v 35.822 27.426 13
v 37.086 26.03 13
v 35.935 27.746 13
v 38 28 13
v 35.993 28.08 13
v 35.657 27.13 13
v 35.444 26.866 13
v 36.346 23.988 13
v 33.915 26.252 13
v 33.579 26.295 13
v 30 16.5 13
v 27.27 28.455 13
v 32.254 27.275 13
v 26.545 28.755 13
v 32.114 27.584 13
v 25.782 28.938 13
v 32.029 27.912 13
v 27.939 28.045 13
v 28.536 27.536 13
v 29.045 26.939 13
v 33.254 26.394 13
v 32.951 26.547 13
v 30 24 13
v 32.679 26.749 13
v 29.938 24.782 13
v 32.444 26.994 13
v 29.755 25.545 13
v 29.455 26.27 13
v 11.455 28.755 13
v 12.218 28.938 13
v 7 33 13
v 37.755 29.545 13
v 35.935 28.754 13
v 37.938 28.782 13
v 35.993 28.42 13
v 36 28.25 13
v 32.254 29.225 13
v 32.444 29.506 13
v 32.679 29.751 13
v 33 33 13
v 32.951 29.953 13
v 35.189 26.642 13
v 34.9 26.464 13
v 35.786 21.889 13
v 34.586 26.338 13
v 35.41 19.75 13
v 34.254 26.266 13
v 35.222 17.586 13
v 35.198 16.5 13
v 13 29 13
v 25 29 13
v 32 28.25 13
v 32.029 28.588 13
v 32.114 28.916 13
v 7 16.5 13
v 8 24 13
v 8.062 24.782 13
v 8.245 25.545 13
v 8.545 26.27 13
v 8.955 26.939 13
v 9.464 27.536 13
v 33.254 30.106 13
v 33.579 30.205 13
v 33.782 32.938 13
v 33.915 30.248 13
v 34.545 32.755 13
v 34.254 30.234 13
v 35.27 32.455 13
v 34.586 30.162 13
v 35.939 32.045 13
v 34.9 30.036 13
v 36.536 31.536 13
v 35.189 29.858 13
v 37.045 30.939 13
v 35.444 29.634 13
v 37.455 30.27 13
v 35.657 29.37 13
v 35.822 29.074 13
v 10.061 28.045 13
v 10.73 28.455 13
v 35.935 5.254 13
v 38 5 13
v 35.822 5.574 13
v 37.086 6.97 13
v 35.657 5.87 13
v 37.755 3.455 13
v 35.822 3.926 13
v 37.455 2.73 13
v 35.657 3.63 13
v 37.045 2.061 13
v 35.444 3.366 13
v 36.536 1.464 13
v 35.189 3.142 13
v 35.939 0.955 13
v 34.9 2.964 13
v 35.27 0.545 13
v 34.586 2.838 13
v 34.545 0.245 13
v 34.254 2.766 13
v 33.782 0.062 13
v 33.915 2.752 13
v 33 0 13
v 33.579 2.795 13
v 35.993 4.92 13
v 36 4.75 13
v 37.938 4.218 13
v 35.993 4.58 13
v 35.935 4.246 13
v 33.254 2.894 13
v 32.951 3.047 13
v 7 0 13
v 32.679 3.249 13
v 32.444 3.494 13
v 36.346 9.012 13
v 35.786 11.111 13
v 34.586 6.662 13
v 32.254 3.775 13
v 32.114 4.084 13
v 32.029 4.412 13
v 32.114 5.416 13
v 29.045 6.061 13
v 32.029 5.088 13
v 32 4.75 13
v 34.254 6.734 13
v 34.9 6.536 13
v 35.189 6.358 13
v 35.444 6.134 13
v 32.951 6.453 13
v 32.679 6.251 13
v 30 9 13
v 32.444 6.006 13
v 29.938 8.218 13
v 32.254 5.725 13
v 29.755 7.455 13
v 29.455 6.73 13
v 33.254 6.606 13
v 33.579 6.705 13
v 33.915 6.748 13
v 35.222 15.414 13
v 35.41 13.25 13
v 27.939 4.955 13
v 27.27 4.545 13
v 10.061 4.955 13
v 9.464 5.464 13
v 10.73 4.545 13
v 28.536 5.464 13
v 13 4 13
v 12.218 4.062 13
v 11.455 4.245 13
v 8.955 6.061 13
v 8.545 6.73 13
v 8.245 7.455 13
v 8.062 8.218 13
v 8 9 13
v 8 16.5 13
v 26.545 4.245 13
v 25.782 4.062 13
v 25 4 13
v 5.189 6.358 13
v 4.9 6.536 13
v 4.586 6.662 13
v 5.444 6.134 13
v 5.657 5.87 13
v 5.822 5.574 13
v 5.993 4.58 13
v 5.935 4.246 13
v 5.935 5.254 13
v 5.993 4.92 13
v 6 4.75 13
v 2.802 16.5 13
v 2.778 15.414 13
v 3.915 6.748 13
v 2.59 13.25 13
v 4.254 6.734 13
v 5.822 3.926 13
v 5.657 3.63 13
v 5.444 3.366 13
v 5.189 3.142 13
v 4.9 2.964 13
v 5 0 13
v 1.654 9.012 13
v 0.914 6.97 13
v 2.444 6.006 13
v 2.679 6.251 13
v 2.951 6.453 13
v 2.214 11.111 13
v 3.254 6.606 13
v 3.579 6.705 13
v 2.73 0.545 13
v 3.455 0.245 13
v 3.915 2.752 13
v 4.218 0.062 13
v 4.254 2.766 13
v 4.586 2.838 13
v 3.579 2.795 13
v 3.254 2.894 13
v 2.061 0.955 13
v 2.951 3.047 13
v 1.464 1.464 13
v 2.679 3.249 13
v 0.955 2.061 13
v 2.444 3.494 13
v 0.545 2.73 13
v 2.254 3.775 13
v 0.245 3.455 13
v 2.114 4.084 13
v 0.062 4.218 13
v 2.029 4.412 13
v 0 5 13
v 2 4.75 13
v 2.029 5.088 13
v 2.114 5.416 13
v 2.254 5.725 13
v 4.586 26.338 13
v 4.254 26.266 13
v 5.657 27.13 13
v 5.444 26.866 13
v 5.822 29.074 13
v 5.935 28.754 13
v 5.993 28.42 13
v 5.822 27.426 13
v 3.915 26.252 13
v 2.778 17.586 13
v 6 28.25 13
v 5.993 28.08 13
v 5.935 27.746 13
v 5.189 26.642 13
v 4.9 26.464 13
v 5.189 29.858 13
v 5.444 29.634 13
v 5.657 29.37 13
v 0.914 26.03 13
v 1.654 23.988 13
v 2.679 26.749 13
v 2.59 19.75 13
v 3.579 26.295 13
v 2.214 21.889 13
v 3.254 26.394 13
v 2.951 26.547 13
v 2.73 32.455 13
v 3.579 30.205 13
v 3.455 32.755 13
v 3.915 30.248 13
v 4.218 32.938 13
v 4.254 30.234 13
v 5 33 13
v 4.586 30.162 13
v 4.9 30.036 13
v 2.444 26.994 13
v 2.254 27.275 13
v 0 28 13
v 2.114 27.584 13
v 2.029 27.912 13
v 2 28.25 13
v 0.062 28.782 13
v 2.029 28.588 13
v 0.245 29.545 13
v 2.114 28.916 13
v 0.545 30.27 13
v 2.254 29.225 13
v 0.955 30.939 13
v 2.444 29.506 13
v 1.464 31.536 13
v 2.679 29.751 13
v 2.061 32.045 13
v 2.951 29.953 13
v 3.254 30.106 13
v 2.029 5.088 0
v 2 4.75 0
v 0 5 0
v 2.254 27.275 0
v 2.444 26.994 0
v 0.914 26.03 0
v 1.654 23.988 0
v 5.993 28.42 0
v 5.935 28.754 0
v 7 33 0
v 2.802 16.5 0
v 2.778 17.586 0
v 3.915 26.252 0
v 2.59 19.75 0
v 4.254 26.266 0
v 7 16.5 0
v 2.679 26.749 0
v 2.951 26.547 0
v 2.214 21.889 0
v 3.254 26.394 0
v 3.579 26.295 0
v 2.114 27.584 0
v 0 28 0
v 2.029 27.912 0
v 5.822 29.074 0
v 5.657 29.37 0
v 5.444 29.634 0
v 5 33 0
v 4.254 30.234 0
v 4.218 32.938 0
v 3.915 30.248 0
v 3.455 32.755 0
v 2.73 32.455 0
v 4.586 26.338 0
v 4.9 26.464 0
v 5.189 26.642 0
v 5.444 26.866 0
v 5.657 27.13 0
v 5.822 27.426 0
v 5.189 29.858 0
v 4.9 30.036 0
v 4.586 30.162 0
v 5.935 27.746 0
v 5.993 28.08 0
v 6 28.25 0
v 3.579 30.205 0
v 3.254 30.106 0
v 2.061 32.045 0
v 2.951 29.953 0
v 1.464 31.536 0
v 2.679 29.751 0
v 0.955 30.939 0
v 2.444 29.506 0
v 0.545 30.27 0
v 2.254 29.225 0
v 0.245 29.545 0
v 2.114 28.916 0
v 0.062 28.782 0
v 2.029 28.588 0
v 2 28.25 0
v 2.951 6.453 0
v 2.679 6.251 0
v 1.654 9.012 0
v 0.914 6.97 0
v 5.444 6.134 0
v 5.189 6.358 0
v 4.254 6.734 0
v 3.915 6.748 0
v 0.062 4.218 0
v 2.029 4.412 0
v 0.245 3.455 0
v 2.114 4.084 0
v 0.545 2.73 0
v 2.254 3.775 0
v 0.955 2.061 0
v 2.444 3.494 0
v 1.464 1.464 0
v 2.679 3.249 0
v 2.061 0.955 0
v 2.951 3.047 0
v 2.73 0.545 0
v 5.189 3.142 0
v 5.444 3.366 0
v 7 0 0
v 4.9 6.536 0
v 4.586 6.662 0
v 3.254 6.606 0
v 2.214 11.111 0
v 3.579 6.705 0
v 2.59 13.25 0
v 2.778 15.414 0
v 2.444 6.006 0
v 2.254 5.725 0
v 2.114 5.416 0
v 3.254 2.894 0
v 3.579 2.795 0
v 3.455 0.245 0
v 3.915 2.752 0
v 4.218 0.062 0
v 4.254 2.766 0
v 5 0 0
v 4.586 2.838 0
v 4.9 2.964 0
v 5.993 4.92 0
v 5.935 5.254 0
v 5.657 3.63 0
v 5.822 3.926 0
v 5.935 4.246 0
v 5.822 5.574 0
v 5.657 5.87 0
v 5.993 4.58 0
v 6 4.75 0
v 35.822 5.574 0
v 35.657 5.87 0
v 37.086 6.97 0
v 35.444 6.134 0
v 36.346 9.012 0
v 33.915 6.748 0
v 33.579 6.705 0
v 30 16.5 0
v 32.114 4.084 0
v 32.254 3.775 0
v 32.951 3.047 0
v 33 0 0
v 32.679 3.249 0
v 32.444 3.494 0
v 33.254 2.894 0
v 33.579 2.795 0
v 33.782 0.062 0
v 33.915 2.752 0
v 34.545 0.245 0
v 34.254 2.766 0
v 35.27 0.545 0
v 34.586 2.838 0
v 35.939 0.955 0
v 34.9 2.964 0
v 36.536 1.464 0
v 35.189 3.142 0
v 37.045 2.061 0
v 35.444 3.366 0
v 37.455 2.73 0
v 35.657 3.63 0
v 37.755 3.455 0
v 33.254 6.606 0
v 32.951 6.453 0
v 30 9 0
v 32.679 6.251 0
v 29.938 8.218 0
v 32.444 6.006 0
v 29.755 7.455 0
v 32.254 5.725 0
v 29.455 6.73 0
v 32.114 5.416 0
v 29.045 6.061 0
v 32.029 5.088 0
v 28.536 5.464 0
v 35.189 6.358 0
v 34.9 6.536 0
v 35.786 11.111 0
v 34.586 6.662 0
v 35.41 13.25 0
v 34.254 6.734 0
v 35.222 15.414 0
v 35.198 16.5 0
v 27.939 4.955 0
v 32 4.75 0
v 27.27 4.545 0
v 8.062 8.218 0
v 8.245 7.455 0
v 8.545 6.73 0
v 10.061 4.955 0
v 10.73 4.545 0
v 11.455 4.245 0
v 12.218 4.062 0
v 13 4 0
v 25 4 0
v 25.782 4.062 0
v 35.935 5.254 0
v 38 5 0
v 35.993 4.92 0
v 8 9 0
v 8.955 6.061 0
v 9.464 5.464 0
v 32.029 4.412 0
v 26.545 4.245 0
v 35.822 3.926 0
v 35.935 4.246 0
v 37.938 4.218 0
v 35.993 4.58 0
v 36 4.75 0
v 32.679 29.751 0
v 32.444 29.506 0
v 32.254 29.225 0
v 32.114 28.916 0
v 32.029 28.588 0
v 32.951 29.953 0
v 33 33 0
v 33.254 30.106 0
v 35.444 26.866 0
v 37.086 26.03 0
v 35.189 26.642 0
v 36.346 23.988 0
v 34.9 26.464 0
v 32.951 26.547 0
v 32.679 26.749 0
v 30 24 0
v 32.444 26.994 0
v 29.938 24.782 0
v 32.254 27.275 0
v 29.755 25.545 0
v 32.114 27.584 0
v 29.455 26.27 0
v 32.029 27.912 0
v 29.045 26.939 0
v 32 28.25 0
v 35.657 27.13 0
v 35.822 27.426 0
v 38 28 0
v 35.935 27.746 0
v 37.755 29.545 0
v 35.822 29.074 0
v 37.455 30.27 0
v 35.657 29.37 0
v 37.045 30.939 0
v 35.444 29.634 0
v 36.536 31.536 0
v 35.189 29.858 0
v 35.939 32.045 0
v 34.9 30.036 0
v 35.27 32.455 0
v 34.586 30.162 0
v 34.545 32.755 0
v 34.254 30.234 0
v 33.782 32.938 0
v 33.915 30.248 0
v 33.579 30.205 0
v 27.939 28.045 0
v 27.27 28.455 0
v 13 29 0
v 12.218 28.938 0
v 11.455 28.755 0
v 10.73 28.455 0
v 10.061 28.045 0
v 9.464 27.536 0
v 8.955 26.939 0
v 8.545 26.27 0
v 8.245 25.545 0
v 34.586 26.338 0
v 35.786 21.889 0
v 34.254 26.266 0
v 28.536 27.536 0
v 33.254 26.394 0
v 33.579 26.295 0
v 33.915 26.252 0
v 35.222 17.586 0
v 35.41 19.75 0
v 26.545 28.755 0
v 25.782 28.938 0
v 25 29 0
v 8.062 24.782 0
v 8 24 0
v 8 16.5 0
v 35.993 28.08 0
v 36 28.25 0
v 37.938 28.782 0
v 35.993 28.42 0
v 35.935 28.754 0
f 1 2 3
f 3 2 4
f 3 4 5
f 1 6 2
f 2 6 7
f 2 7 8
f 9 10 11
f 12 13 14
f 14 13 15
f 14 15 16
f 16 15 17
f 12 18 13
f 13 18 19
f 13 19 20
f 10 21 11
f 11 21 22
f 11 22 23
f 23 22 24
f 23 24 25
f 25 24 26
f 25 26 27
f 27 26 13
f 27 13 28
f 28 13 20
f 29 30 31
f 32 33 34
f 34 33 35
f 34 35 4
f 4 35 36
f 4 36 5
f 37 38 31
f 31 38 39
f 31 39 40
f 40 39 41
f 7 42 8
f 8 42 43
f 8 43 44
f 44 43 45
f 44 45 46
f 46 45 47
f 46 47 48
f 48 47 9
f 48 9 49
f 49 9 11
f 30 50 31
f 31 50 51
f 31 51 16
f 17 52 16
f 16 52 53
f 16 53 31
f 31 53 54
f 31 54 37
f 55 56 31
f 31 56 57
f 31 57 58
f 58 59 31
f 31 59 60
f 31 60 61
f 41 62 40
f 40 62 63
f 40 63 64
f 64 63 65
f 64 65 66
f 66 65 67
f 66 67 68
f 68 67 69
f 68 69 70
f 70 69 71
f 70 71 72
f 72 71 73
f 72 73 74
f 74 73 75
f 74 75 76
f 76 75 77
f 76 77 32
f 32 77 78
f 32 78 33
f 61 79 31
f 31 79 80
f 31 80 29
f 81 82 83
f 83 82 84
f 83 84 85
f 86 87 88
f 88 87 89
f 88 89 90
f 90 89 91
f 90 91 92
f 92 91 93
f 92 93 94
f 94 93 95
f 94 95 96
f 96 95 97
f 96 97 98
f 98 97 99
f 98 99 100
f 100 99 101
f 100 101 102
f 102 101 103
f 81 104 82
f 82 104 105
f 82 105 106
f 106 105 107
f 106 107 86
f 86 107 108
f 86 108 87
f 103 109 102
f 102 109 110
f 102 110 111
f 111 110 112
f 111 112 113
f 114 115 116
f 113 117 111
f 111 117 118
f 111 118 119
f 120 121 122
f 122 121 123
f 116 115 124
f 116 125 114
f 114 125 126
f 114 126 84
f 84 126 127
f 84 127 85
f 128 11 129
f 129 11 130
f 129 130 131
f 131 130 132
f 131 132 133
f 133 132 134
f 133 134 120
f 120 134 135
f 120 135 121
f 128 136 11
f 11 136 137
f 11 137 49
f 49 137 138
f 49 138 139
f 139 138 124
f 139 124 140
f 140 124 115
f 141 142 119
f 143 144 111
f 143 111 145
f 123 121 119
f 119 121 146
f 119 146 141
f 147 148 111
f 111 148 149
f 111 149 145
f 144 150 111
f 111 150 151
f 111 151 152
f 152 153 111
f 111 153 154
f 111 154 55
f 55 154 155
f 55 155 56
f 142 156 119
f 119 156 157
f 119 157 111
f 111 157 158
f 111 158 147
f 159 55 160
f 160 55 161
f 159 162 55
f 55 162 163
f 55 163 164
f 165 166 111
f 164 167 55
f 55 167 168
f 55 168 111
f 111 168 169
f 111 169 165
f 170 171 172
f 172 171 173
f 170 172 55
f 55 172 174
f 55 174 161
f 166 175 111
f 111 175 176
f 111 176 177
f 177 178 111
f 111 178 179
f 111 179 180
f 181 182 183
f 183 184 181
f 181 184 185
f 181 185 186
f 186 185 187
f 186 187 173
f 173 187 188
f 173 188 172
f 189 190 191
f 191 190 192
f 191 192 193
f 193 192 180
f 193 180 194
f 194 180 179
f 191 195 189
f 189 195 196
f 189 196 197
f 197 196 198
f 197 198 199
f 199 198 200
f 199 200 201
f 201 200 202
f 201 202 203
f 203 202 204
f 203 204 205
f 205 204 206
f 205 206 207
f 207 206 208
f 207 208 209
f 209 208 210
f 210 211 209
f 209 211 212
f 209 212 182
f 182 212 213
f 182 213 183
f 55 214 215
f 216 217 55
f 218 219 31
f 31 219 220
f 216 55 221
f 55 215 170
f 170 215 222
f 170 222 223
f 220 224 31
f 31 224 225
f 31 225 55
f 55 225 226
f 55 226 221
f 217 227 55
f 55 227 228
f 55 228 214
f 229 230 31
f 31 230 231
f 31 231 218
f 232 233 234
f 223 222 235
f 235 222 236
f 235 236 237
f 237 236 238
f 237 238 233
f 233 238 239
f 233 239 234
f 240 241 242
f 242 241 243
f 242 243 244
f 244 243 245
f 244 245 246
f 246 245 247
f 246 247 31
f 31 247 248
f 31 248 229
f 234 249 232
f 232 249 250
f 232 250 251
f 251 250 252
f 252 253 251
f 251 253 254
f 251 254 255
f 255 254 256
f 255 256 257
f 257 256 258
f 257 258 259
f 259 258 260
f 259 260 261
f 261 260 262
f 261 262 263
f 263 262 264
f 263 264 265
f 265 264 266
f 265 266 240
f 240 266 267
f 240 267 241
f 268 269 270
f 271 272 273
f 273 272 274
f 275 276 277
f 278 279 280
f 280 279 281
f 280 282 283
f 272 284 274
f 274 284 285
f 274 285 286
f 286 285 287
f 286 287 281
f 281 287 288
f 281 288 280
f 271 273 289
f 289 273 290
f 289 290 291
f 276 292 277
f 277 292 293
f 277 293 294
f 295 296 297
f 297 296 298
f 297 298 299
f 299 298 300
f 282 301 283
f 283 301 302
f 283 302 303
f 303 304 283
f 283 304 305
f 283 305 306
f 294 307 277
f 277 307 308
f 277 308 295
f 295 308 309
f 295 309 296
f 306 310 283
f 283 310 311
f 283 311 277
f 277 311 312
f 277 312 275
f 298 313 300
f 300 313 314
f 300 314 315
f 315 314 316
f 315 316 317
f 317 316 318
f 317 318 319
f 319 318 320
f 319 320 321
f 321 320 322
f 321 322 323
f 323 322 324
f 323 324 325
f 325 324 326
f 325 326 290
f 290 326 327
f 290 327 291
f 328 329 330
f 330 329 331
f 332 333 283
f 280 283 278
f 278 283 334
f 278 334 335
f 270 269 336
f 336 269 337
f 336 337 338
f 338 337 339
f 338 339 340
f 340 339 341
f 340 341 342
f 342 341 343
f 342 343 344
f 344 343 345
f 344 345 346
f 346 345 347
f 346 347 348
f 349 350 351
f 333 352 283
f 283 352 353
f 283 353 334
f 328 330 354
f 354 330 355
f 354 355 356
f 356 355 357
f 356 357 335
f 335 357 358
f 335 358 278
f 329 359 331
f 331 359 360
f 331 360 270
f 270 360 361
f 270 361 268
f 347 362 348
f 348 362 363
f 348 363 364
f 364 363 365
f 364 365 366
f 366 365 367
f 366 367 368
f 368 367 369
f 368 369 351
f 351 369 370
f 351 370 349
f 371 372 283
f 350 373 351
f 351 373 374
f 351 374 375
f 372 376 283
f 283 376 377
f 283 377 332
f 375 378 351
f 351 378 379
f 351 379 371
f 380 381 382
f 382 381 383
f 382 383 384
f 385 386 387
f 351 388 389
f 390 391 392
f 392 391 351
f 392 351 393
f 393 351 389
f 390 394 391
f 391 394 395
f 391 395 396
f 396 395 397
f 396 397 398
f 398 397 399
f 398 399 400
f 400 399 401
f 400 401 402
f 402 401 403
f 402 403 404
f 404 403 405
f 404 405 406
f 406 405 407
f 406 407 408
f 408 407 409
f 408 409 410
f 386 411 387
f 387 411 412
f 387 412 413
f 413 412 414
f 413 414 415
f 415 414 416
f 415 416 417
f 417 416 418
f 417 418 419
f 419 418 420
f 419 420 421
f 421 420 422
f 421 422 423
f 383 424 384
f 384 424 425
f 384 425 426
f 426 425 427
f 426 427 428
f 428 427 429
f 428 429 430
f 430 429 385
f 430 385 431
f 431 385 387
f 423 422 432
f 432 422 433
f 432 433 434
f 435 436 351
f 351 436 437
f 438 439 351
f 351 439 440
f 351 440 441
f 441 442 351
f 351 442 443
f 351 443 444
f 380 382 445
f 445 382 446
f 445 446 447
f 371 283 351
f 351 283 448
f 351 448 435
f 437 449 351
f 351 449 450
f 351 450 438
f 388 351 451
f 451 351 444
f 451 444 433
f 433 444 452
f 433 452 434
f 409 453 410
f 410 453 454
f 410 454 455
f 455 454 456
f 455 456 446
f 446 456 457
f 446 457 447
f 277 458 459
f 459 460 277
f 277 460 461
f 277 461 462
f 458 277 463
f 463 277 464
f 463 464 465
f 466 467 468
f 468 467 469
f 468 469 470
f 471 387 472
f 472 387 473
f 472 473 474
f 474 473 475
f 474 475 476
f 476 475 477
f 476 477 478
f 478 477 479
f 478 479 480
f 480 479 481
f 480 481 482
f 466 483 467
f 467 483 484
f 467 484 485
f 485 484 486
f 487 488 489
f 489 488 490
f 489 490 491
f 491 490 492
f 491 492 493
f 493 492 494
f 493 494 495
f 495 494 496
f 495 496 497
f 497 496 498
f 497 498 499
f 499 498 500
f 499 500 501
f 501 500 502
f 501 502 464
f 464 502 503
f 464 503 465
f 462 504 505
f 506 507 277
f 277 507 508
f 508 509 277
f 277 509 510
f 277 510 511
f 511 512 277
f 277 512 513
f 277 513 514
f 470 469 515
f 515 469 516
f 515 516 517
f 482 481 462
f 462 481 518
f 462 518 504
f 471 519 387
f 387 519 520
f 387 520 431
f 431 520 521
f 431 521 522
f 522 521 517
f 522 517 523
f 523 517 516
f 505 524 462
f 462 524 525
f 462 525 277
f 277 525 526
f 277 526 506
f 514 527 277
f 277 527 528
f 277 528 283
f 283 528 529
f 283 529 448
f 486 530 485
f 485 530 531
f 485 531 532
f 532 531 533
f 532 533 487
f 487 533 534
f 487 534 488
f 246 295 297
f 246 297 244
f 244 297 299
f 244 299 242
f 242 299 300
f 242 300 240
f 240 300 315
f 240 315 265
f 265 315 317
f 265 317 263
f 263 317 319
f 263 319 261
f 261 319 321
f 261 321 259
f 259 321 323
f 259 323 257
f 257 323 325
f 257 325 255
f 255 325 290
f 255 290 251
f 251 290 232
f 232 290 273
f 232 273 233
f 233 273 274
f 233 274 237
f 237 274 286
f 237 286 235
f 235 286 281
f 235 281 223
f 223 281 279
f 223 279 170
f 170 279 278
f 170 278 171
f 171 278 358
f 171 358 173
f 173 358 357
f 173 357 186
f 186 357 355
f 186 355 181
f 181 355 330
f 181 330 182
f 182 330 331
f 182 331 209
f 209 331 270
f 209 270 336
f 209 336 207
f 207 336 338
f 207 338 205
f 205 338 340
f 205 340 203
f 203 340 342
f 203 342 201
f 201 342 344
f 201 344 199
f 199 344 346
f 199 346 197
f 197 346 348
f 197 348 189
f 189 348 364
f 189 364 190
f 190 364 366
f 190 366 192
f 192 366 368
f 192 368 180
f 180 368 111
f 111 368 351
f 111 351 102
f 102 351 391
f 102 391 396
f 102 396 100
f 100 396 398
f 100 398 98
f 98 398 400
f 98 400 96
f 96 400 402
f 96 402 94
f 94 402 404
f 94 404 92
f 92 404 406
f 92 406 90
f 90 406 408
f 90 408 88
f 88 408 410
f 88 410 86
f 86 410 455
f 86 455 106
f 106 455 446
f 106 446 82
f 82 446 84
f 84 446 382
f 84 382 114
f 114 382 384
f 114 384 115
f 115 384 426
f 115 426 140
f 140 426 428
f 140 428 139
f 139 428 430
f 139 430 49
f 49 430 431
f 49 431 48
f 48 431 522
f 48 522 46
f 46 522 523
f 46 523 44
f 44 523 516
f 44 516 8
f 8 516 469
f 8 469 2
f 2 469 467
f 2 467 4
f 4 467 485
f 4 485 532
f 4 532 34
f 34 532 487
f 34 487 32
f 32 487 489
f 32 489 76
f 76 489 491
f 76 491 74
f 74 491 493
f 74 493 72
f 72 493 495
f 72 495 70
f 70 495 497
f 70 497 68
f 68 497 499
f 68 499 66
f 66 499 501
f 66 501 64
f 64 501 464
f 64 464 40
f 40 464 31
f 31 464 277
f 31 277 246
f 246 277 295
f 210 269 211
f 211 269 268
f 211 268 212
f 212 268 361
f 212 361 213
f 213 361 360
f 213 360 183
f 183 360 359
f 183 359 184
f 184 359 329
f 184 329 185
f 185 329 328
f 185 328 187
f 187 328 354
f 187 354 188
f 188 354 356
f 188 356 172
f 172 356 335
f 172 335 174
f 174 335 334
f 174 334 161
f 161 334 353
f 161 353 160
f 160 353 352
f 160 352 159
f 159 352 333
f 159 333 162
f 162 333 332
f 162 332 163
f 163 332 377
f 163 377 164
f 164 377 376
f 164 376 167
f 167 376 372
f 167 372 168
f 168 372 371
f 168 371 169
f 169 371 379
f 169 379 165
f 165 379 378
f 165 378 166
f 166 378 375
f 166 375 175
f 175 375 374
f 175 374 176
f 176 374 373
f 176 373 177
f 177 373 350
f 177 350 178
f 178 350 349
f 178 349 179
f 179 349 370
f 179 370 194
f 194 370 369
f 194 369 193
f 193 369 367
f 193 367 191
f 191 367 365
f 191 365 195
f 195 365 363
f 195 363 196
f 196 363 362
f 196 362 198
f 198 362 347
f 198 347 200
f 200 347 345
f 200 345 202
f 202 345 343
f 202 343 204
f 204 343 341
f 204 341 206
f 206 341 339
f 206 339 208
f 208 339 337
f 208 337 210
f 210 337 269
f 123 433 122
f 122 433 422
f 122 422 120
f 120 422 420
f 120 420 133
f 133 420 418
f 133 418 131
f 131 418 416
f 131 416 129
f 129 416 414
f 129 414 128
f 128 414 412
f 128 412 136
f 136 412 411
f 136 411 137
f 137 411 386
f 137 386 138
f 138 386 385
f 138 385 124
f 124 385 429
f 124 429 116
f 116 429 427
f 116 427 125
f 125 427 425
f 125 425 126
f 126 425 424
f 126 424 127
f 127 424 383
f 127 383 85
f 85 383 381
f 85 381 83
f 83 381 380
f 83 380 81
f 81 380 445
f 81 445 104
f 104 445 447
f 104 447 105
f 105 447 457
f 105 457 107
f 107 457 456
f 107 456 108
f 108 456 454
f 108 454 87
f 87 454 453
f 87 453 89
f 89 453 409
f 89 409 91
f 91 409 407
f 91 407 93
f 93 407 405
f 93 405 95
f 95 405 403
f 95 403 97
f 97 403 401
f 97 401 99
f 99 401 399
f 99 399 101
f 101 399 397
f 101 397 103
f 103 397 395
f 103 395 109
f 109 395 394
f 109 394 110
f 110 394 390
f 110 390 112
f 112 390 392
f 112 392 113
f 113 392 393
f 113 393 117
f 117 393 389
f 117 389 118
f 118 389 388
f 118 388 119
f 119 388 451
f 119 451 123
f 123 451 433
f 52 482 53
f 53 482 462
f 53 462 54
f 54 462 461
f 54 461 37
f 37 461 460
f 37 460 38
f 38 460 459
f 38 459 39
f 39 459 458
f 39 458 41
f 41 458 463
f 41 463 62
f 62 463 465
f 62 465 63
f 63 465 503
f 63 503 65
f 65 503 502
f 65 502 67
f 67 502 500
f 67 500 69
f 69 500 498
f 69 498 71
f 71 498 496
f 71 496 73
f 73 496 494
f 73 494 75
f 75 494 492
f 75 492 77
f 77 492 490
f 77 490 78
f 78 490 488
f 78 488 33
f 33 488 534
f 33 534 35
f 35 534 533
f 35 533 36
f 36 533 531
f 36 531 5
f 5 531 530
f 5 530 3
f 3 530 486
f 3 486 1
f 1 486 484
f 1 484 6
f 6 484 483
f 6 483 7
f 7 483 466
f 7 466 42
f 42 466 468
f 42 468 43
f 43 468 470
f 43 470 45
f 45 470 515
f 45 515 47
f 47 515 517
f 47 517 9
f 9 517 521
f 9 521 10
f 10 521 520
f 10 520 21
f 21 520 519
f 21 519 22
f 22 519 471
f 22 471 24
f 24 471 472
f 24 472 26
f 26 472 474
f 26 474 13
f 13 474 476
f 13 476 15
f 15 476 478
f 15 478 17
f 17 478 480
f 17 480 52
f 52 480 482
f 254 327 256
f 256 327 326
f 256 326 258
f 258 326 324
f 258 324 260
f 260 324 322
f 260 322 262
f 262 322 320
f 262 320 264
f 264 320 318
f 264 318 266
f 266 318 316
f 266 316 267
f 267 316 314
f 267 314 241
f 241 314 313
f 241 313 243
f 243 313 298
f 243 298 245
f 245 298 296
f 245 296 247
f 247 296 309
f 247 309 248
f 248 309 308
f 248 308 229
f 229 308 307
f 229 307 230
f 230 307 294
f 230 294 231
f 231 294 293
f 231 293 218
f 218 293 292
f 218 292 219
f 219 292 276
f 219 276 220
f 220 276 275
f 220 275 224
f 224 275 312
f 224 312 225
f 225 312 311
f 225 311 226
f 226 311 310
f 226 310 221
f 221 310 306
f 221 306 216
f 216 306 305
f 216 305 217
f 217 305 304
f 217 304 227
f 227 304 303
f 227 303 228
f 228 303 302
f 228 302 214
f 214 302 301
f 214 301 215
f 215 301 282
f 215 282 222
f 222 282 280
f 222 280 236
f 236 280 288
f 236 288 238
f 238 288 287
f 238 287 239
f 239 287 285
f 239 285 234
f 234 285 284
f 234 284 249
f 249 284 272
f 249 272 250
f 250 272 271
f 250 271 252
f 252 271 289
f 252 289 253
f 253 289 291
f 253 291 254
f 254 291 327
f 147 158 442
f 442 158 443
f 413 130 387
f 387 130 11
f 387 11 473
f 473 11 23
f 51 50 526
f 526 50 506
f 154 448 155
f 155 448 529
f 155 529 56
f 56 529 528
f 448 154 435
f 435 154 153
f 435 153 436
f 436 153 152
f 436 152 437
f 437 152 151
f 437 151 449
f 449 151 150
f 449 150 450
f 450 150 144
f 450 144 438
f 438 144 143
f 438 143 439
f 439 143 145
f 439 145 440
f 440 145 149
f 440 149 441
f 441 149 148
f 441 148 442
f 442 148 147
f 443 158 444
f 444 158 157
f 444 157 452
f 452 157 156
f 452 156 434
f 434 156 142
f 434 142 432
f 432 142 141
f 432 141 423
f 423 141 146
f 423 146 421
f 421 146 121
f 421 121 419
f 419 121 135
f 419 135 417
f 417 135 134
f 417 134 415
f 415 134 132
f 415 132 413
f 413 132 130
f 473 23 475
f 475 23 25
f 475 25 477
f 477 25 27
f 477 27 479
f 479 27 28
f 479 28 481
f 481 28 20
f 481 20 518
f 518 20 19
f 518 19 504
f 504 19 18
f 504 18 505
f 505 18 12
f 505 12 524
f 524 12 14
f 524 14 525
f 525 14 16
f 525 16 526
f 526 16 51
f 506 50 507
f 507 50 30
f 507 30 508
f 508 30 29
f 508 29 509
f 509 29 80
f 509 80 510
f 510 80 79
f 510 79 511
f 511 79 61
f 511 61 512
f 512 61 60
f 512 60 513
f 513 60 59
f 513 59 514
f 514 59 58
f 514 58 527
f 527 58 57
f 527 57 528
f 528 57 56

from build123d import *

# Parameters (mm, degrees)
CROQUIS1_R              = 2
SALIENTE_EXTRUIR1_DEPTH = 13
CROQUIS2_W              = 22
CROQUIS2_H              = 25
CORTAR_EXTRUIR1_DEPTH   = 52.980765673
REDONDEO1_R             = 5


with BuildPart() as part:
    # Croquis1 → Saliente-Extruir1 (new body)
    with BuildSketch(Plane.XY):
        with BuildLine():
            Line((5, 0), (33, 0))
            ThreePointArc((33, 0), (36.535533906, 1.464466094), (38, 5))
            ThreePointArc((38, 5), (35.19797288, 16.5), (38, 28))
            ThreePointArc((38, 28), (36.535533906, 31.535533906), (33, 33))
            Line((33, 33), (5, 33))
            ThreePointArc((5, 33), (1.464466094, 31.535533906), (0, 28))
            ThreePointArc((0, 28), (2.80202712, 16.5), (0, 5))
            ThreePointArc((0, 5), (1.464466094, 1.464466094), (5, 0))
        make_face()
        with Locations(Location((4, 4.75, 0), (0, 0, 180))):
            Circle(CROQUIS1_R, mode=Mode.SUBTRACT)
        with Locations(Location((34, 4.75, 0), (0, 0, 180))):
            Circle(CROQUIS1_R, mode=Mode.SUBTRACT)
        with Locations(Location((34, 28.25, 0), (0, 0, 180))):
            Circle(CROQUIS1_R, mode=Mode.SUBTRACT)
        with Locations(Location((4, 28.25, 0), (0, 0, 180))):
            Circle(CROQUIS1_R, mode=Mode.SUBTRACT)
    extrude(amount=SALIENTE_EXTRUIR1_DEPTH)

    # Croquis2 → Cortar-Extruir1 (cut, through all)
    with BuildSketch(Plane(origin=(0, 0, 0), x_dir=(-1, 0, 0), z_dir=(0, 0, -1))):
        with Locations((-19, 16.5)):
            Rectangle(CROQUIS2_W, CROQUIS2_H)
    extrude(amount=-CORTAR_EXTRUIR1_DEPTH, mode=Mode.SUBTRACT)

    # Redondeo1
    redondeo1_edges = [part.edges().sort_by_distance(p)[0] for p in [
        (8, 4, 6.5),
        (30, 4, 6.5),
        (30, 29, 6.5),
        (8, 29, 6.5),
    ]]
    fillet(redondeo1_edges, radius=REDONDEO1_R)


solid = part.part
